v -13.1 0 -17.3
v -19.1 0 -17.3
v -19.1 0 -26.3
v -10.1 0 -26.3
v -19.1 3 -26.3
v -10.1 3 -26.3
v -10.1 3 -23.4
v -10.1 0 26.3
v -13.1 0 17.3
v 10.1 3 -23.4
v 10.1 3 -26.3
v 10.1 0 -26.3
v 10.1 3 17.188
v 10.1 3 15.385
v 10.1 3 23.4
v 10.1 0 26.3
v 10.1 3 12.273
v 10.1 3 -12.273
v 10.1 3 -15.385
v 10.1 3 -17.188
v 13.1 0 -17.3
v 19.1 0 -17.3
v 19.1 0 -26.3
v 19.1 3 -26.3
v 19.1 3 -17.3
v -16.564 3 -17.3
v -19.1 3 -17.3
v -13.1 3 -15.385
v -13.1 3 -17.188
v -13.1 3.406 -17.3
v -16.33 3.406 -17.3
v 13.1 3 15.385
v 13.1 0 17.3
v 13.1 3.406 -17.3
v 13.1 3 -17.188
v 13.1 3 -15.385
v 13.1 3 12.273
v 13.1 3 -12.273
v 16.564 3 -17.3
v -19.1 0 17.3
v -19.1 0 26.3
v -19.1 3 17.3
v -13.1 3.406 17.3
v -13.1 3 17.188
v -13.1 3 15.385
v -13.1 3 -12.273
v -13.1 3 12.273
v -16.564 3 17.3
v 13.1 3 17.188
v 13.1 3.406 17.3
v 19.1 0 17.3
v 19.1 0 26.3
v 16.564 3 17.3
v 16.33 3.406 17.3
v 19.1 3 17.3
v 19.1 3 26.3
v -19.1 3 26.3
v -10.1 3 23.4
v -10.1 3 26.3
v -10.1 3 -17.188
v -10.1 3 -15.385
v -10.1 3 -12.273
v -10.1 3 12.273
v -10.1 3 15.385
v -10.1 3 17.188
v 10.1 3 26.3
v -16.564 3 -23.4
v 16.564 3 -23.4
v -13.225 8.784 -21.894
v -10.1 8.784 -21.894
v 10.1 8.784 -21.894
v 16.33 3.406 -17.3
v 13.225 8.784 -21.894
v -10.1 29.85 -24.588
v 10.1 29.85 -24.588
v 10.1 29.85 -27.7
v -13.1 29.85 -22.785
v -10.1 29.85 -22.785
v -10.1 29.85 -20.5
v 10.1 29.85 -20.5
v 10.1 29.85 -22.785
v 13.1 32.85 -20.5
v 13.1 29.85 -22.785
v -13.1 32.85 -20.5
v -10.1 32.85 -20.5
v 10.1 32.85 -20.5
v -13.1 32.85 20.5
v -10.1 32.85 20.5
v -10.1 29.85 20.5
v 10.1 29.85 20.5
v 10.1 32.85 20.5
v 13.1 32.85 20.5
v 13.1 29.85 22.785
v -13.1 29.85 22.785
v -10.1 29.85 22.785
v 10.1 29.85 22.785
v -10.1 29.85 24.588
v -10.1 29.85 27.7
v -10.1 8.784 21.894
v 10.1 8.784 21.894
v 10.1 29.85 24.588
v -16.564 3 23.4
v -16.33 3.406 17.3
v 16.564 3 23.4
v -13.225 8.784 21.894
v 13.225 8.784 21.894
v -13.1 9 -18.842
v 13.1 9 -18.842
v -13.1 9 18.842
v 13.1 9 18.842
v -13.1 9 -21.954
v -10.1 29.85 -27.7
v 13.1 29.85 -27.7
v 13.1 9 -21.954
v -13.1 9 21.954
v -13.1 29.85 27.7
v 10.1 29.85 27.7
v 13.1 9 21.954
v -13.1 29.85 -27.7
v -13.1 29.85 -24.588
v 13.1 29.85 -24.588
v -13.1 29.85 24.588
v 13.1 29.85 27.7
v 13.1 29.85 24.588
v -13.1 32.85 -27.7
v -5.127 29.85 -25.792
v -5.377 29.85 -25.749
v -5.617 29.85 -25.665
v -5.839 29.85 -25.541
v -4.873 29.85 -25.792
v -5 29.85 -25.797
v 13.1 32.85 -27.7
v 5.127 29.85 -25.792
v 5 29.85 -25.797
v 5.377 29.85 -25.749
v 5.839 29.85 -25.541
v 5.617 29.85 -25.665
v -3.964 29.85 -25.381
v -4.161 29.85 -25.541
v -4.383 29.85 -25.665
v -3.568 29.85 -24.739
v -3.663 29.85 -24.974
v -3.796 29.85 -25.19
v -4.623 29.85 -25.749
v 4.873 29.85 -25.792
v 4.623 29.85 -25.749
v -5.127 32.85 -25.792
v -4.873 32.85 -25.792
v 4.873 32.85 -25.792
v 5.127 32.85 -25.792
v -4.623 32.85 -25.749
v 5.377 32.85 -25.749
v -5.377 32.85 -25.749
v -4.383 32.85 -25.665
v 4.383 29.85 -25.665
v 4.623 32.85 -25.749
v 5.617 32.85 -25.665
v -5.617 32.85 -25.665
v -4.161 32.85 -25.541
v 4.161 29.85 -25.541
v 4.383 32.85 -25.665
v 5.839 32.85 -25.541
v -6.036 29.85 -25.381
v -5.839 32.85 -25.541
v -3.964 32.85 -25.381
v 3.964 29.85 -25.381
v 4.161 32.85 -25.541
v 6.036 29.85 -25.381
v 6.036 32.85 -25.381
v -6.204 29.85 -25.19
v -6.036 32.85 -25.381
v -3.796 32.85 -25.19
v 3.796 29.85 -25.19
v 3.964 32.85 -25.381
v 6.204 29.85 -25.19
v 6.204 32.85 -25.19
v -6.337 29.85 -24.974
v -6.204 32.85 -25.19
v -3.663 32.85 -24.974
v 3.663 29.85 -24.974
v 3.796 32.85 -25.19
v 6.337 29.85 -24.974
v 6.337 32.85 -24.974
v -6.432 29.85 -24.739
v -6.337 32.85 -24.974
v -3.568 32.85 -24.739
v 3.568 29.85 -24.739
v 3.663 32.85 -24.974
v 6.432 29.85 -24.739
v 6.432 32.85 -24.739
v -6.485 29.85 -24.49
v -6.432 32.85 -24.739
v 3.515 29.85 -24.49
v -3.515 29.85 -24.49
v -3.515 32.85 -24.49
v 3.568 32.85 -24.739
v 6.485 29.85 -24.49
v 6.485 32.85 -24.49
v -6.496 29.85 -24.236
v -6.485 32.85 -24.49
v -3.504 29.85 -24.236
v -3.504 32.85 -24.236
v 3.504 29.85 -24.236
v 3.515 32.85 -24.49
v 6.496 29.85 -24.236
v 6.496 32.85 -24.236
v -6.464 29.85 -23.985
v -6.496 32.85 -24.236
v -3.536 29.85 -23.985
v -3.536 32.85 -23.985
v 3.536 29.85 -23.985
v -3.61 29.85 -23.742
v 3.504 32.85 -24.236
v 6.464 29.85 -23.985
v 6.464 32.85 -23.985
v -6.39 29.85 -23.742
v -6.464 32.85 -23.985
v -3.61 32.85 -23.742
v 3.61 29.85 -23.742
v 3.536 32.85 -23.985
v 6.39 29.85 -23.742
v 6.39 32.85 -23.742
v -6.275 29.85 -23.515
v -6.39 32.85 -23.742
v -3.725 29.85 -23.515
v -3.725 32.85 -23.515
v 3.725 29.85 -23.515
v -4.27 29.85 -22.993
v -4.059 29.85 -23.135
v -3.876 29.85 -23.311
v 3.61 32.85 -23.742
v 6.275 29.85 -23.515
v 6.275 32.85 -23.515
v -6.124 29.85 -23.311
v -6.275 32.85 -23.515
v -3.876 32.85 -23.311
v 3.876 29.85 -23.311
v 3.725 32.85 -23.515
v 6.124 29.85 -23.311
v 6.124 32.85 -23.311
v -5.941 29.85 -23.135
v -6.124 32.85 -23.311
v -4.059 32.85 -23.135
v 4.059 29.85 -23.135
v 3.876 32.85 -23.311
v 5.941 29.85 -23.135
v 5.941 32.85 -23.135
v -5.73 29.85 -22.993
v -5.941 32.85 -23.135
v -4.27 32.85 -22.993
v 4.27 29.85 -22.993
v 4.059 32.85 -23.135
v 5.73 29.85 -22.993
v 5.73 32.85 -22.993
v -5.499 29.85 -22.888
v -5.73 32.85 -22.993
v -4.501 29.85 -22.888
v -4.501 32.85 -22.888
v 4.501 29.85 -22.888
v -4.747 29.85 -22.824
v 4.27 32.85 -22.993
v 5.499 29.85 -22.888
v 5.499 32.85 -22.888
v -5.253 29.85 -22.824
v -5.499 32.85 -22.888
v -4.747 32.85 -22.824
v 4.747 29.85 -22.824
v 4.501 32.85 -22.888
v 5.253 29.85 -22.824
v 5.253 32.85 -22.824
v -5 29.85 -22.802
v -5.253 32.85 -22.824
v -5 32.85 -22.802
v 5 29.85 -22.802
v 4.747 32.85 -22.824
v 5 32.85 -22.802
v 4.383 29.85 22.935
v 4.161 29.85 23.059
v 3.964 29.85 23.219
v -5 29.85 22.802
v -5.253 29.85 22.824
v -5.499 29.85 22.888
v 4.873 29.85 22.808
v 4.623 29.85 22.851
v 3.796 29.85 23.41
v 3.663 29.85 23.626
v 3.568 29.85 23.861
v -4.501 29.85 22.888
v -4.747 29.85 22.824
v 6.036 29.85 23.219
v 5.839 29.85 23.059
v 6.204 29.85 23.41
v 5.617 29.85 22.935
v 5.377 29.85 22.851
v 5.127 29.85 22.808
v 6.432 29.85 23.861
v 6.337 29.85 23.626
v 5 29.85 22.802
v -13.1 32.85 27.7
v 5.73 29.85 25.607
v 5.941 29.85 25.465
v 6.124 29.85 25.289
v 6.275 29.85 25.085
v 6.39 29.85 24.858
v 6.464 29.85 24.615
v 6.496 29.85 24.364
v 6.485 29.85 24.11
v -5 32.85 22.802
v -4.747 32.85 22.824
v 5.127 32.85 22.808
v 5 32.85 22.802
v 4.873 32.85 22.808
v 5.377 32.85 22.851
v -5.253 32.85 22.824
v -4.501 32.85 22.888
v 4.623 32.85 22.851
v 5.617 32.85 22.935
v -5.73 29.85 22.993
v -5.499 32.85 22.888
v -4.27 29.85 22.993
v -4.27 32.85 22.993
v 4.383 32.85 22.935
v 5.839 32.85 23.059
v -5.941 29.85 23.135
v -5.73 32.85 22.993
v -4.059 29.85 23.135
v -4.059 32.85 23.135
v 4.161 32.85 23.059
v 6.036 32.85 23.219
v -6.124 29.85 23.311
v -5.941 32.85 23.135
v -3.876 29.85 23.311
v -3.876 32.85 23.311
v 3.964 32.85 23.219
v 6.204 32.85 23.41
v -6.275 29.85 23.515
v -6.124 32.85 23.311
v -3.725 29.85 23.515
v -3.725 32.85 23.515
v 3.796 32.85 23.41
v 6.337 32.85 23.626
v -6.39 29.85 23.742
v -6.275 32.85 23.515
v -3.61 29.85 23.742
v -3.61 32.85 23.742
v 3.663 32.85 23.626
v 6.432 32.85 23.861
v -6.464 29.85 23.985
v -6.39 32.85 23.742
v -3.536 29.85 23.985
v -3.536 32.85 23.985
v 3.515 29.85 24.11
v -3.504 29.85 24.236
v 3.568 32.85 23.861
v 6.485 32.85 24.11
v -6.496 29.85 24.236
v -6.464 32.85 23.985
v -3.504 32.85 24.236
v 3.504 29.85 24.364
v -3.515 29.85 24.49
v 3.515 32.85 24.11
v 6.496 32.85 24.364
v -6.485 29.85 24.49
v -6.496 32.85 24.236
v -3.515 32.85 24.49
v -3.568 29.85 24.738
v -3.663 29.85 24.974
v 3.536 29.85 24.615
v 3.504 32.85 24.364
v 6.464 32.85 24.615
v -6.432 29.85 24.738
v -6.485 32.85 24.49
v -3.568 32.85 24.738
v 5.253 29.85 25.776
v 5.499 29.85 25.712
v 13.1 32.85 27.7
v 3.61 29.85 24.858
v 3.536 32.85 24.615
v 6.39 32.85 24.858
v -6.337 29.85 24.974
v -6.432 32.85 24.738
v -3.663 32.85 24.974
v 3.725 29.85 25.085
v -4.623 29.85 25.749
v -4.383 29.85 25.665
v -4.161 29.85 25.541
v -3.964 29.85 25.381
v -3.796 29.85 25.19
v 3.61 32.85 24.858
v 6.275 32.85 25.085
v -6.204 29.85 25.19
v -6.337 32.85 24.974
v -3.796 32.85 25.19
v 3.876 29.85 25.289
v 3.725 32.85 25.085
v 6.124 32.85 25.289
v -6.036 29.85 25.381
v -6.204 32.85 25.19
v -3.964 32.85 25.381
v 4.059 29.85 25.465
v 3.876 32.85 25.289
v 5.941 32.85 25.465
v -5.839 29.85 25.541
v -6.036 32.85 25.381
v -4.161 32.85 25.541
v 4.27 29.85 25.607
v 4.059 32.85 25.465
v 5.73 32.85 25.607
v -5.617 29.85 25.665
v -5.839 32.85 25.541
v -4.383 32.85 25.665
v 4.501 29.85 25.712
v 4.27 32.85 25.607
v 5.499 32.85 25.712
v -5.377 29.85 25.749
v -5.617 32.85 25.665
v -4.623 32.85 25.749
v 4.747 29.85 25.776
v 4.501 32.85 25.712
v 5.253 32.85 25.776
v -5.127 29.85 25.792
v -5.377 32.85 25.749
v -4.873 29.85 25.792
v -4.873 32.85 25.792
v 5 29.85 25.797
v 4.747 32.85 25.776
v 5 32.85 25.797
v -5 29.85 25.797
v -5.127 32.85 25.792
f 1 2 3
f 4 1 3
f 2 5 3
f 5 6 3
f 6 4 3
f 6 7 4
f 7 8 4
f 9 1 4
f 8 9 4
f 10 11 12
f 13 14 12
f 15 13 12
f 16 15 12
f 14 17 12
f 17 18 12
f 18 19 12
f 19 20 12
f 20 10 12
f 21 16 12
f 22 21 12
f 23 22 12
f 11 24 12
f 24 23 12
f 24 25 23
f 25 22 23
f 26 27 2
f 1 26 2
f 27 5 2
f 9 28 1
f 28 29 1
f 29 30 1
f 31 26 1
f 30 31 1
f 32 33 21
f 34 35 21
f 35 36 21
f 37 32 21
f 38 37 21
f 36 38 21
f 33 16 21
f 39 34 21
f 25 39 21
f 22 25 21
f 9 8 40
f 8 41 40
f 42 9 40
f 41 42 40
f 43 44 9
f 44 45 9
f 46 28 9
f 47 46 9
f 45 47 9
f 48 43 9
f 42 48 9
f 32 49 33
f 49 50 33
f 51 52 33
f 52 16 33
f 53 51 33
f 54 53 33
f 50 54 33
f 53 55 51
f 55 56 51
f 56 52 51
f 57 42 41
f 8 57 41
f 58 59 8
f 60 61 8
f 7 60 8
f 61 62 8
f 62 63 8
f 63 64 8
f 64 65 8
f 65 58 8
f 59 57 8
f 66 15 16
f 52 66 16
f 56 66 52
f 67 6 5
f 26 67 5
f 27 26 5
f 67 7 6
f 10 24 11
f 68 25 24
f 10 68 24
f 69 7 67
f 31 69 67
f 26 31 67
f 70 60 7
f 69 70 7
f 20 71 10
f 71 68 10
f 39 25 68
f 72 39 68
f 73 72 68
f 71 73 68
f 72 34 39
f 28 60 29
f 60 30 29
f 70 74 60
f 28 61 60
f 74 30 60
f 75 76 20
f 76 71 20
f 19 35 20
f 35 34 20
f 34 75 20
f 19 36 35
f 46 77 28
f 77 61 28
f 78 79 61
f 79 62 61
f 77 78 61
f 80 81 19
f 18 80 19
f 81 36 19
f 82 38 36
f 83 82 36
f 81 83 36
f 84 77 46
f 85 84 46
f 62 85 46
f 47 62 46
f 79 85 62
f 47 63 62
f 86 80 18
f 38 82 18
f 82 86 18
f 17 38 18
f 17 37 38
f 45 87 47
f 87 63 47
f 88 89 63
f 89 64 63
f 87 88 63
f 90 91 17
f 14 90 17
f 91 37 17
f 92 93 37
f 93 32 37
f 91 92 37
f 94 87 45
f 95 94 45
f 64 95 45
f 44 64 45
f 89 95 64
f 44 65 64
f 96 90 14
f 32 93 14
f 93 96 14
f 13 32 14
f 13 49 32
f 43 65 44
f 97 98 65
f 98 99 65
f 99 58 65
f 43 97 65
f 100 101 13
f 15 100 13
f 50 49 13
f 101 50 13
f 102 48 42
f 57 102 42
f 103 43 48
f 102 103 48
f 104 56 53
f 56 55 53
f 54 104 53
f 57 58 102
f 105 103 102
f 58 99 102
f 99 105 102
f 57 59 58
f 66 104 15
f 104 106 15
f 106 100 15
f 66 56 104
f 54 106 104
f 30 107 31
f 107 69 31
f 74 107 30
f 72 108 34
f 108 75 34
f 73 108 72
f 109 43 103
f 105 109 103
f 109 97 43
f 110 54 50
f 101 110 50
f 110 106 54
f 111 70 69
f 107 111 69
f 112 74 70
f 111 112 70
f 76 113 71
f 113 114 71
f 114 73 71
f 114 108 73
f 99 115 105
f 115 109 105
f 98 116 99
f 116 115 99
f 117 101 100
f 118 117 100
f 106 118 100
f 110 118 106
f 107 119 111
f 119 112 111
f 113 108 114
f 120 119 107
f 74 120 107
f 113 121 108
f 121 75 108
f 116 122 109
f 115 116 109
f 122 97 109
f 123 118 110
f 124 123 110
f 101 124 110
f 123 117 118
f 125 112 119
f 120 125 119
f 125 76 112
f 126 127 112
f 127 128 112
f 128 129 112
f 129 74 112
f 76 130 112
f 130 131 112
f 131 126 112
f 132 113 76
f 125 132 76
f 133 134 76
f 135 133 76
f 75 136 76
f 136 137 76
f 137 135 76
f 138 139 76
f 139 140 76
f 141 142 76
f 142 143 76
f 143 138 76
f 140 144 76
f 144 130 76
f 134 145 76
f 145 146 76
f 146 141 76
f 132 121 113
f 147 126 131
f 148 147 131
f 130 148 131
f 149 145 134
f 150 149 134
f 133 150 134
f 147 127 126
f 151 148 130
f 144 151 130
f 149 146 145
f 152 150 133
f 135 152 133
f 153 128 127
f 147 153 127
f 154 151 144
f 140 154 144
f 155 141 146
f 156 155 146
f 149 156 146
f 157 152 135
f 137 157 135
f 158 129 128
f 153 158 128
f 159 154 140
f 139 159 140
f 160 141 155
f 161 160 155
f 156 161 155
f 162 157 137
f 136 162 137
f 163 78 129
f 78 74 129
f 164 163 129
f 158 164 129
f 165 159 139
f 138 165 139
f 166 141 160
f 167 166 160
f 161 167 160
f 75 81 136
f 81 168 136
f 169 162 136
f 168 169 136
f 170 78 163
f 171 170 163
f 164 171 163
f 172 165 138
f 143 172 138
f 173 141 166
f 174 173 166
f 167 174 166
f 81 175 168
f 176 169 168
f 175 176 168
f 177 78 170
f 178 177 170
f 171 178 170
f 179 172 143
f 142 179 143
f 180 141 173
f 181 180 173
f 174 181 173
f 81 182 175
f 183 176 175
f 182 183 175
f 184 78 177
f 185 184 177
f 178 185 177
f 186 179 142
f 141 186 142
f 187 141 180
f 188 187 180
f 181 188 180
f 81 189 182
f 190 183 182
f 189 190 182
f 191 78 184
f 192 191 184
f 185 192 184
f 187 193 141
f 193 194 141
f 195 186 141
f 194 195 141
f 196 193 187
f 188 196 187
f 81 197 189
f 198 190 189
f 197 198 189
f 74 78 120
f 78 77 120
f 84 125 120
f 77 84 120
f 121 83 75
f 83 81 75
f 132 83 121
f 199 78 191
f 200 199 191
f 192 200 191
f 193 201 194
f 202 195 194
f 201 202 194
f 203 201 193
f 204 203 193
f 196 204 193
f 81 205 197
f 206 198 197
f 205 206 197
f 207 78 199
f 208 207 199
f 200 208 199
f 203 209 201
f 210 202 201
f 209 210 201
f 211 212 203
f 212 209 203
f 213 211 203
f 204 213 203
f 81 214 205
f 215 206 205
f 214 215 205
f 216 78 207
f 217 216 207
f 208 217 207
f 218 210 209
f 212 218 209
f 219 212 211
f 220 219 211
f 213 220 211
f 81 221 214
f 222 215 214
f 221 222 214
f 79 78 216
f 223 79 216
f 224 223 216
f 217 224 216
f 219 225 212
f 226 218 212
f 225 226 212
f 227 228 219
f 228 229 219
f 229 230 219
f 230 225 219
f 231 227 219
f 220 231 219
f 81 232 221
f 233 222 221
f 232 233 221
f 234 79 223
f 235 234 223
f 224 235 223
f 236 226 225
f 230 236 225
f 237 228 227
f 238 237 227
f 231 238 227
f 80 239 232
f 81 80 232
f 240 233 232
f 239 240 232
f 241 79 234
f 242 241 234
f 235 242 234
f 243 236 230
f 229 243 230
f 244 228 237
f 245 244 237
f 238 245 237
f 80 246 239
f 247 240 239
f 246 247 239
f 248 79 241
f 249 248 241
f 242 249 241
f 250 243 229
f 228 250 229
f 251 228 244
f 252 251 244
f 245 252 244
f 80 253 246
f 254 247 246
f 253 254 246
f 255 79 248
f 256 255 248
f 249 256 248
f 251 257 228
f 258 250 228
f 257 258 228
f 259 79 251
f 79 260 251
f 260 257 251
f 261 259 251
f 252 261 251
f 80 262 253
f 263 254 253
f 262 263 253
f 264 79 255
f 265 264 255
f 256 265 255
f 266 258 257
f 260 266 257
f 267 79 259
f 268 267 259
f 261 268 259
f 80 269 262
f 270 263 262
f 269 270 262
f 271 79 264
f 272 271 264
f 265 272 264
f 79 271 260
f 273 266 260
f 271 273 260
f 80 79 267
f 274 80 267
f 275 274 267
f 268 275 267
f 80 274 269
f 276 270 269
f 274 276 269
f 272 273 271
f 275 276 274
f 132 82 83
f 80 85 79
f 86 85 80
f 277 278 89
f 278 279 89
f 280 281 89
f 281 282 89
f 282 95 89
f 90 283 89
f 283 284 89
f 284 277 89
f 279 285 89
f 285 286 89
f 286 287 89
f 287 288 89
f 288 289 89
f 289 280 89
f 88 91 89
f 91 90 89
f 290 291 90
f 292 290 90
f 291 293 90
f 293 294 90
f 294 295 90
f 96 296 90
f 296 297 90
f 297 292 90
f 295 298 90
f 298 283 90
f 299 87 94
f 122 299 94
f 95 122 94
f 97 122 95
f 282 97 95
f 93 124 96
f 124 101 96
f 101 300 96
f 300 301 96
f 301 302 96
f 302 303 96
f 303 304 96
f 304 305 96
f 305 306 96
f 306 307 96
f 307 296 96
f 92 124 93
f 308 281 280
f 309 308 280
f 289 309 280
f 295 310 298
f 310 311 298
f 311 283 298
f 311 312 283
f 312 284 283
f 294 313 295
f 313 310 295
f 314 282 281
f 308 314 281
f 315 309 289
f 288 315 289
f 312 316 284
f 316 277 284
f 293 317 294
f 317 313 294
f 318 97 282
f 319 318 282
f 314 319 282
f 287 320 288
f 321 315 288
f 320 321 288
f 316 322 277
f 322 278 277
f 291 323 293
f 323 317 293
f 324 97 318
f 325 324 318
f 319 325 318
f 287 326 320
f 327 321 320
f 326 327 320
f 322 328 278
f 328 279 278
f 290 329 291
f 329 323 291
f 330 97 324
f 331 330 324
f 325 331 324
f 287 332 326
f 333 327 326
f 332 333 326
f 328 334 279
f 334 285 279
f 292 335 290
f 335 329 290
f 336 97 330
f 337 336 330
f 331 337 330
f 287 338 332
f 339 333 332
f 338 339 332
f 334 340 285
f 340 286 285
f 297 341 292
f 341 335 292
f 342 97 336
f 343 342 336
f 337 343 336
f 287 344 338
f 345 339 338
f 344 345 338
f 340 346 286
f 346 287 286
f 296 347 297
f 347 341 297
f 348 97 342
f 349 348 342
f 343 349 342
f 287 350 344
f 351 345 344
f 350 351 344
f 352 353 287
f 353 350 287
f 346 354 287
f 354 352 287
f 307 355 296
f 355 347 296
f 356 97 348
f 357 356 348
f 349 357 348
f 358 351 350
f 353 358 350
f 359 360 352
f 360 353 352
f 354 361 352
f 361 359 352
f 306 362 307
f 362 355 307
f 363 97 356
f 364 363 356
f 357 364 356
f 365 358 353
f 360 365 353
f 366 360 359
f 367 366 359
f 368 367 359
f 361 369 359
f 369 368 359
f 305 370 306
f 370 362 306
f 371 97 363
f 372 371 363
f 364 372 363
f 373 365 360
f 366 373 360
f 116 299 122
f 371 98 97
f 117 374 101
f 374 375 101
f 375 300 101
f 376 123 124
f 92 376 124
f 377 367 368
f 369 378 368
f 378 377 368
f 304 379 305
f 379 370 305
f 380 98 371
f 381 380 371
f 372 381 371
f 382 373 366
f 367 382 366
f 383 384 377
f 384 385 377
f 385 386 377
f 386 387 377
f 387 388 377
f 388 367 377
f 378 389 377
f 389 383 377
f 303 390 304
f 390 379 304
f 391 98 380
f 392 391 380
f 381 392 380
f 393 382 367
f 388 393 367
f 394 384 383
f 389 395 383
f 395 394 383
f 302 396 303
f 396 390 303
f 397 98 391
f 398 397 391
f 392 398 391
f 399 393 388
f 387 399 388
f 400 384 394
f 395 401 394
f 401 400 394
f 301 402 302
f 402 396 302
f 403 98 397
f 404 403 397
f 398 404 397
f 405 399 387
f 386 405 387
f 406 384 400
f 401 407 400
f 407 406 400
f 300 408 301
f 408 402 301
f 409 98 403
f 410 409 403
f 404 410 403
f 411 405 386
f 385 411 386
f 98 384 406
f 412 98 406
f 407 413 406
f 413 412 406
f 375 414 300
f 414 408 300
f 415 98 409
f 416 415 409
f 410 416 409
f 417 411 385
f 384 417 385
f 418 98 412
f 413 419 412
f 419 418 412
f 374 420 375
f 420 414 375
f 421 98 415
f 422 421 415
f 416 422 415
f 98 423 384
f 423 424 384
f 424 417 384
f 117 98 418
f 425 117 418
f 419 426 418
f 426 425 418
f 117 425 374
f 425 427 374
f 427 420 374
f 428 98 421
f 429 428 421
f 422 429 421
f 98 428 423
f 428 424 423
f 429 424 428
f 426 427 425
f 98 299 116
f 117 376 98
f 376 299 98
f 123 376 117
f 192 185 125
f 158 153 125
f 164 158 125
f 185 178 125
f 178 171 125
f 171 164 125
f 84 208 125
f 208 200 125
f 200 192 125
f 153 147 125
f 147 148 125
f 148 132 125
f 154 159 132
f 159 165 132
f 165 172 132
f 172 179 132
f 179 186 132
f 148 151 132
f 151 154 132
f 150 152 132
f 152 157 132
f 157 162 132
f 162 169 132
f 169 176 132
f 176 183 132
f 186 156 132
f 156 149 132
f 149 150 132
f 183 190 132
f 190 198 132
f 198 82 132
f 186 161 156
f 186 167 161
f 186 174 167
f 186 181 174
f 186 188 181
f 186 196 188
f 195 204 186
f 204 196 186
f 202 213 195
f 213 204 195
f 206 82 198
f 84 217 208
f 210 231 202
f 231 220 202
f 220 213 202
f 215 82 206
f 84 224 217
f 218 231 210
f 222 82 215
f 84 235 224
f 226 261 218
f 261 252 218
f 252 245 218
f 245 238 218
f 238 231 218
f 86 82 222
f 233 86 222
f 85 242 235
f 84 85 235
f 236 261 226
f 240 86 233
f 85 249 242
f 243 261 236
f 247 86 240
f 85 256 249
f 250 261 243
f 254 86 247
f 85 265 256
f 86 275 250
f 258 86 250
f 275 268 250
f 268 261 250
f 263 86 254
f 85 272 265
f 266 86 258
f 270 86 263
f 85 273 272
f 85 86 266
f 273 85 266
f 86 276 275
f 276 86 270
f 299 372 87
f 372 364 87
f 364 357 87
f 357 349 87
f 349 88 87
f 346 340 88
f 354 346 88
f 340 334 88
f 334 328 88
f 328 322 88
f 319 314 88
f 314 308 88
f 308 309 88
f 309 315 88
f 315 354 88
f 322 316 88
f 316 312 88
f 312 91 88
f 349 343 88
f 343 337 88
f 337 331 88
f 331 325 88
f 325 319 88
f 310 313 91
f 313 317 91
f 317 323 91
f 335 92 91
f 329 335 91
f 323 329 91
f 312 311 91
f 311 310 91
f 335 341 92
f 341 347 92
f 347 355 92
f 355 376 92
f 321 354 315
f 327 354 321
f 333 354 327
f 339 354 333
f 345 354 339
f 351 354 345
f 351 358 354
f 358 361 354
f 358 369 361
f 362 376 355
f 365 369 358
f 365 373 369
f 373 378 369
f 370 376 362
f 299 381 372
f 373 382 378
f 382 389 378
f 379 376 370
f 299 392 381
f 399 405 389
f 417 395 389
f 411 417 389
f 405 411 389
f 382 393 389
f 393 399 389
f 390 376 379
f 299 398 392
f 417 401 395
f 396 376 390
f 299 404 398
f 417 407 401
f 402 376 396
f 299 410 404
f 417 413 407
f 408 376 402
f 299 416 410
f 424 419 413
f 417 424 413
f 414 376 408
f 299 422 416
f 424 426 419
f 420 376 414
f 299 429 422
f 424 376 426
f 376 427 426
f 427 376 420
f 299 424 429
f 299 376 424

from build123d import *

# Parameters (mm, degrees)
BOSS_EXTRUDE2_DEPTH = 3
SKETCH6_W           = 7.2
SKETCH6_H           = 3
BOSS_EXTRUDE3_DEPTH = 10.1
SKETCH8_R           = 1.4975
CUT_EXTRUDE3_DEPTH  = 45.922405323
SKETCH9_W           = 9
SKETCH9_H           = 9
BOSS_EXTRUDE4_DEPTH = 3
CHAMFER2_SIZE       = 3.464101615
CHAMFER2_SIZE_2     = 6
CHAMFER2_SIZE_3     = 3.099985421


# Read off the part's stored shape, not the designer's step: Mirror10
with BuildPart() as part:
    # Sketch4 → Boss-Extrude2 (new body)
    with BuildSketch(Plane(origin=(10.1, 0, 0), x_dir=(0, 0, -1), z_dir=(1, 0, 0))):
        Polygon((0, 0), (20.3, 0), (20.3, 3), (27.7, 29.85), (27.7, 32.85), (20.5, 32.85), (12.273184358, 3), (0, 3), align=None)
        Polygon((22.785036556, 29.85), (15.385036556, 3), (17.188147801, 3), (24.588147801, 29.85), align=None, mode=Mode.SUBTRACT)
    boss_extrude2 = extrude(amount=BOSS_EXTRUDE2_DEPTH)

    # Sketch6 → Boss-Extrude3 (add)
    with BuildSketch(Plane.ZY.offset(-10.1)):
        with Locations((-24.1, 31.35)):
            Rectangle(SKETCH6_W, SKETCH6_H)
    boss_extrude3 = extrude(amount=BOSS_EXTRUDE3_DEPTH)

    # Sketch8 → Cut-Extrude3 (cut, through all)
    with BuildSketch(Plane(origin=(0, 32.85, 0), x_dir=(1, 0, 0), z_dir=(0, 1, 0))):
        with Locations(Location((5, 24.3, 0), (0, 0, 270))):
            Circle(SKETCH8_R)
    cut_extrude3 = extrude(amount=-CUT_EXTRUDE3_DEPTH, mode=Mode.SUBTRACT)

    # Sketch9 → Boss-Extrude4 (add)
    with BuildSketch(Plane.XZ):
        with Locations((14.6, -21.8)):
            Rectangle(SKETCH9_W, SKETCH9_H)
    boss_extrude4 = extrude(amount=-BOSS_EXTRUDE4_DEPTH)

    # Mirror9: Boss-Extrude2, Boss-Extrude3, Cut-Extrude3, Boss-Extrude4 across plane
    add(boss_extrude2.mirror(Plane(origin=(0, 0, 0), x_dir=(0, 0, 1), z_dir=(1, 0, 0))))
    add(boss_extrude3.mirror(Plane(origin=(0, 0, 0), x_dir=(0, 0, 1), z_dir=(1, 0, 0))))
    add(cut_extrude3.mirror(Plane(origin=(0, 0, 0), x_dir=(0, 0, 1), z_dir=(1, 0, 0))), mode=Mode.SUBTRACT)
    add(boss_extrude4.mirror(Plane(origin=(0, 0, 0), x_dir=(0, 0, 1), z_dir=(1, 0, 0))))

    # Mirror10: part across plane


with BuildPart() as part_1:
    add(part.part)
    add(part.part.mirror(Plane.XY))

    # Chamfer2
    # the kernel refuses this chamfer: 6, 3.464101615, 3.099985421 mm, written as the material it adds along each edge
    with BuildSketch(Plane(origin=(-13.1, 3, 17.3), x_dir=(-0.9983227437537925, -0.05789386240267071, 0), z_dir=(0, 0, 1))) as chamfer2_piece_1_section:
        Polygon((CHAMFER2_SIZE * 0.998322743793, -CHAMFER2_SIZE * 0.057893862405), (-CHAMFER2_SIZE_2 * 0.0578938624027, -CHAMFER2_SIZE_2 * 0.998322743754), (0, 0), align=None)
    chamfer2_piece_1 = extrude(amount=18.522514528, mode=Mode.PRIVATE)
    chamfer2_piece_1 = split(chamfer2_piece_1, bisect_by=Plane(origin=(-14.207429755, 4.623813367, 20.747531431), z_dir=(0, 0.2656988795293601, -0.9640560696436917)), keep=Keep.TOP, mode=Mode.PRIVATE)
    chamfer2_piece_1 = split(chamfer2_piece_1, bisect_by=Plane(origin=(-14.207429755, 5.420910005, 17.855363222), z_dir=(0, -0.26569887952935983, 0.9640560696436918)), keep=Keep.TOP, mode=Mode.PRIVATE)
    add(chamfer2_piece_1)
    with BuildSketch(Plane(origin=(-13.1, 3, -17.3), x_dir=(-0.9983227437537925, -0.05789386240267071, 0), z_dir=(0, 0, -1))) as chamfer2_piece_2_section:
        Polygon((CHAMFER2_SIZE * 0.998322743793, CHAMFER2_SIZE * 0.057893862405), (-CHAMFER2_SIZE_2 * 0.0578938624027, CHAMFER2_SIZE_2 * 0.998322743754), (0, 0), align=None)
    chamfer2_piece_2 = extrude(amount=18.522514528, mode=Mode.PRIVATE)
    chamfer2_piece_2 = split(chamfer2_piece_2, bisect_by=Plane(origin=(-14.207429755, 5.420910005, -17.855363222), z_dir=(0, -0.26569887952935983, -0.9640560696436918)), keep=Keep.TOP, mode=Mode.PRIVATE)
    chamfer2_piece_2 = split(chamfer2_piece_2, bisect_by=Plane(origin=(-14.207429755, 4.623813367, -20.747531431), z_dir=(0, 0.2656988795293601, 0.9640560696436917)), keep=Keep.TOP, mode=Mode.PRIVATE)
    add(chamfer2_piece_2)
    with BuildSketch(Plane(origin=(-10.1, 3, 20.3), x_dir=(0, -0.07329167604498149, 0.997310548536672), z_dir=(-1, 0, 0)), Plane(origin=(10.1, 3, -20.3), x_dir=(0, -0.07329167604498149, -0.997310548536672), z_dir=(1, 0, 0))) as chamfer2_piece_3:
        Polygon((CHAMFER2_SIZE_3 * 0.997310548488, CHAMFER2_SIZE_3 * 0.0732916760414), (CHAMFER2_SIZE_2 * 0.194327010143, CHAMFER2_SIZE_2 * 0.98093680384), (0, 0), align=None)
    extrude(amount=3)
    with BuildSketch(Plane(origin=(13.1, 3, 35.822514528), x_dir=(0.9983227437537925, -0.05789386240267071, 0), z_dir=(0, 0, -1))) as chamfer2_piece_4_section:
        Polygon((CHAMFER2_SIZE * 0.998322743793, -CHAMFER2_SIZE * 0.057893862405), (-CHAMFER2_SIZE_2 * 0.0578938624027, -CHAMFER2_SIZE_2 * 0.998322743754), (0, 0), align=None)
    chamfer2_piece_4 = extrude(amount=18.522514528, mode=Mode.PRIVATE)
    chamfer2_piece_4 = split(chamfer2_piece_4, bisect_by=Plane(origin=(14.207429755, 4.623813367, 20.747531431), z_dir=(0, 0.2656988795293601, -0.9640560696436917)), keep=Keep.TOP, mode=Mode.PRIVATE)
    chamfer2_piece_4 = split(chamfer2_piece_4, bisect_by=Plane(origin=(14.207429755, 5.420910005, 17.855363222), z_dir=(0, -0.26569887952935983, 0.9640560696436918)), keep=Keep.TOP, mode=Mode.PRIVATE)
    add(chamfer2_piece_4)
    with BuildSketch(Plane(origin=(13.1, 3, -35.822514528), x_dir=(0.9983227437537925, -0.05789386240267071, 0), z_dir=(0, 0, 1))) as chamfer2_piece_5_section:
        Polygon((CHAMFER2_SIZE * 0.998322743793, CHAMFER2_SIZE * 0.057893862405), (-CHAMFER2_SIZE_2 * 0.0578938624027, CHAMFER2_SIZE_2 * 0.998322743754), (0, 0), align=None)
    chamfer2_piece_5 = extrude(amount=18.522514528, mode=Mode.PRIVATE)
    chamfer2_piece_5 = split(chamfer2_piece_5, bisect_by=Plane(origin=(14.207429755, 4.623813367, -20.747531431), z_dir=(0, 0.2656988795293601, 0.9640560696436917)), keep=Keep.TOP, mode=Mode.PRIVATE)
    chamfer2_piece_5 = split(chamfer2_piece_5, bisect_by=Plane(origin=(14.207429755, 5.420910005, -17.855363222), z_dir=(0, -0.26569887952935983, -0.9640560696436918)), keep=Keep.TOP, mode=Mode.PRIVATE)
    add(chamfer2_piece_5)
    with BuildSketch(Plane(origin=(10.1, 3, 20.3), x_dir=(0, 0.9690111038190681, 0.24701716676245647), z_dir=(1, 0, 0))) as chamfer2_piece_6:
        Polygon((CHAMFER2_SIZE_2 * 0.999813220622, CHAMFER2_SIZE_2 * 0.0193267656127), (CHAMFER2_SIZE_3 * 0.247017166751, CHAMFER2_SIZE_3 * 0.969011103772), (0, 0), align=None)
    extrude(amount=3)
    with BuildSketch(Plane(origin=(-10.1, 3, -20.3), x_dir=(0, -0.07329167604498149, -0.997310548536672), z_dir=(-1, 0, 0))) as chamfer2_piece_7:
        Polygon((CHAMFER2_SIZE_3 * 0.997310548488, -CHAMFER2_SIZE_3 * 0.0732916760414), (CHAMFER2_SIZE_2 * 0.194327010143, -CHAMFER2_SIZE_2 * 0.98093680384), (0, 0), align=None)
    extrude(amount=3)
    with BuildSketch(Plane(origin=(-13.1, 3, 17.3), x_dir=(-0.9983227437537925, -0.05789386240267071, 0), z_dir=(0, 0, 1))) as chamfer2_piece_8a_section:
        Polygon((CHAMFER2_SIZE * 0.998322743793, -CHAMFER2_SIZE * 0.057893862405), (-CHAMFER2_SIZE_2 * 0.0578938624027, -CHAMFER2_SIZE_2 * 0.998322743754), (0, 0), align=None)
    chamfer2_piece_8a = extrude(amount=18.522514528, mode=Mode.PRIVATE)
    chamfer2_piece_8a = split(chamfer2_piece_8a, bisect_by=Plane(origin=(-14.24841762, 4.892203589, 26.3), z_dir=(0, 0, -1)), keep=Keep.TOP, mode=Mode.PRIVATE)
    chamfer2_piece_8a = split(chamfer2_piece_8a, bisect_by=Plane(origin=(-14.24841762, 5.593858539, 21.014880938), z_dir=(0, -0.2656988795293601, 0.9640560696436917)), keep=Keep.TOP, mode=Mode.PRIVATE)
    with BuildSketch(Plane(origin=(-10.1, 3, 20.3), x_dir=(0, -0.07329167604498149, 0.997310548536672), z_dir=(-1, 0, 0))) as chamfer2_piece_8b_section:
        Polygon((CHAMFER2_SIZE_3 * 0.997310548488, CHAMFER2_SIZE_3 * 0.0732916760414), (CHAMFER2_SIZE_2 * 0.194327010143, CHAMFER2_SIZE_2 * 0.98093680384), (0, 0), align=None)
    chamfer2_piece_8b = extrude(amount=18.522514528, mode=Mode.PRIVATE)
    chamfer2_piece_8b = split(chamfer2_piece_8b, bisect_by=Plane(origin=(-19.1, 4.952235463, 21.823438055), z_dir=(1, 0, 0)), keep=Keep.TOP, mode=Mode.PRIVATE)
    chamfer2_piece_8b = split(chamfer2_piece_8b, bisect_by=Plane(origin=(-13.1, 4.952235463, 21.823438055), z_dir=(-1, 0, 0)), keep=Keep.TOP, mode=Mode.PRIVATE)
    chamfer2_piece_8 = chamfer2_piece_8a & chamfer2_piece_8b
    add(chamfer2_piece_8)
    with BuildSketch(Plane(origin=(-13.1, 3, -17.3), x_dir=(-0.9983227437537925, -0.05789386240267071, 0), z_dir=(0, 0, -1))) as chamfer2_piece_9a_section:
        Polygon((CHAMFER2_SIZE * 0.998322743793, CHAMFER2_SIZE * 0.057893862405), (-CHAMFER2_SIZE_2 * 0.0578938624027, CHAMFER2_SIZE_2 * 0.998322743754), (0, 0), align=None)
    chamfer2_piece_9a = extrude(amount=18.522514528, mode=Mode.PRIVATE)
    chamfer2_piece_9a = split(chamfer2_piece_9a, bisect_by=Plane(origin=(-14.24841762, 4.892203589, -26.3), z_dir=(0, 0, 1)), keep=Keep.TOP, mode=Mode.PRIVATE)
    chamfer2_piece_9a = split(chamfer2_piece_9a, bisect_by=Plane(origin=(-14.24841762, 5.593858539, -21.014880938), z_dir=(0, -0.2656988795293601, -0.9640560696436917)), keep=Keep.TOP, mode=Mode.PRIVATE)
    with BuildSketch(Plane(origin=(-10.1, 3, -20.3), x_dir=(0, -0.07329167604498149, -0.997310548536672), z_dir=(-1, 0, 0))) as chamfer2_piece_9b_section:
        Polygon((CHAMFER2_SIZE_3 * 0.997310548488, -CHAMFER2_SIZE_3 * 0.0732916760414), (CHAMFER2_SIZE_2 * 0.194327010143, -CHAMFER2_SIZE_2 * 0.98093680384), (0, 0), align=None)
    chamfer2_piece_9b = extrude(amount=18.522514528, mode=Mode.PRIVATE)
    chamfer2_piece_9b = split(chamfer2_piece_9b, bisect_by=Plane(origin=(-19.1, 4.952235463, -21.823438055), z_dir=(1, 0, 0)), keep=Keep.TOP, mode=Mode.PRIVATE)
    chamfer2_piece_9b = split(chamfer2_piece_9b, bisect_by=Plane(origin=(-13.1, 4.952235463, -21.823438055), z_dir=(-1, 0, 0)), keep=Keep.TOP, mode=Mode.PRIVATE)
    chamfer2_piece_9 = chamfer2_piece_9a & chamfer2_piece_9b
    add(chamfer2_piece_9)
    with BuildSketch(Plane(origin=(10.1, 3, 20.3), x_dir=(0, 0.9690111038190681, 0.24701716676245647), z_dir=(1, 0, 0))) as chamfer2_piece_10a_section:
        Polygon((CHAMFER2_SIZE_2 * 0.999813220622, CHAMFER2_SIZE_2 * 0.0193267656127), (CHAMFER2_SIZE_3 * 0.247017166751, CHAMFER2_SIZE_3 * 0.969011103772), (0, 0), align=None)
    chamfer2_piece_10a = extrude(amount=18.522514528, mode=Mode.PRIVATE)
    chamfer2_piece_10a = split(chamfer2_piece_10a, bisect_by=Plane(origin=(13.1, 4.952235463, 21.823438055), z_dir=(1, 0, 0)), keep=Keep.TOP, mode=Mode.PRIVATE)
    chamfer2_piece_10a = split(chamfer2_piece_10a, bisect_by=Plane(origin=(19.1, 4.952235463, 21.823438055), z_dir=(-1, 0, 0)), keep=Keep.TOP, mode=Mode.PRIVATE)
    with BuildSketch(Plane(origin=(13.1, 3, 35.822514528), x_dir=(0.9983227437537925, -0.05789386240267071, 0), z_dir=(0, 0, -1))) as chamfer2_piece_10b_section:
        Polygon((CHAMFER2_SIZE * 0.998322743793, -CHAMFER2_SIZE * 0.057893862405), (-CHAMFER2_SIZE_2 * 0.0578938624027, -CHAMFER2_SIZE_2 * 0.998322743754), (0, 0), align=None)
    chamfer2_piece_10b = extrude(amount=18.522514528, mode=Mode.PRIVATE)
    chamfer2_piece_10b = split(chamfer2_piece_10b, bisect_by=Plane(origin=(14.24841762, 5.593858539, 21.014880938), z_dir=(0, -0.2656988795293601, 0.9640560696436917)), keep=Keep.TOP, mode=Mode.PRIVATE)
    chamfer2_piece_10b = split(chamfer2_piece_10b, bisect_by=Plane(origin=(14.24841762, 4.892203589, 26.3), z_dir=(0, 0, -1)), keep=Keep.TOP, mode=Mode.PRIVATE)
    chamfer2_piece_10 = chamfer2_piece_10a & chamfer2_piece_10b
    add(chamfer2_piece_10)
    with BuildSketch(Plane(origin=(13.1, 3, -35.822514528), x_dir=(0.9983227437537925, -0.05789386240267071, 0), z_dir=(0, 0, 1))) as chamfer2_piece_11a_section:
        Polygon((CHAMFER2_SIZE * 0.998322743793, CHAMFER2_SIZE * 0.057893862405), (-CHAMFER2_SIZE_2 * 0.0578938624027, CHAMFER2_SIZE_2 * 0.998322743754), (0, 0), align=None)
    chamfer2_piece_11a = extrude(amount=18.522514528, mode=Mode.PRIVATE)
    chamfer2_piece_11a = split(chamfer2_piece_11a, bisect_by=Plane(origin=(14.24841762, 4.892203589, -26.3), z_dir=(0, 0, 1)), keep=Keep.TOP, mode=Mode.PRIVATE)
    chamfer2_piece_11a = split(chamfer2_piece_11a, bisect_by=Plane(origin=(14.24841762, 5.593858539, -21.014880938), z_dir=(0, -0.2656988795293601, -0.9640560696436917)), keep=Keep.TOP, mode=Mode.PRIVATE)
    with BuildSketch(Plane(origin=(10.1, 3, -20.3), x_dir=(0, -0.07329167604498149, -0.997310548536672), z_dir=(1, 0, 0))) as chamfer2_piece_11b_section:
        Polygon((CHAMFER2_SIZE_3 * 0.997310548488, CHAMFER2_SIZE_3 * 0.0732916760414), (CHAMFER2_SIZE_2 * 0.194327010143, CHAMFER2_SIZE_2 * 0.98093680384), (0, 0), align=None)
    chamfer2_piece_11b = extrude(amount=18.522514528, mode=Mode.PRIVATE)
    chamfer2_piece_11b = split(chamfer2_piece_11b, bisect_by=Plane(origin=(19.1, 4.952235463, -21.823438055), z_dir=(-1, 0, 0)), keep=Keep.TOP, mode=Mode.PRIVATE)
    chamfer2_piece_11b = split(chamfer2_piece_11b, bisect_by=Plane(origin=(13.1, 4.952235463, -21.823438055), z_dir=(1, 0, 0)), keep=Keep.TOP, mode=Mode.PRIVATE)
    chamfer2_piece_11 = chamfer2_piece_11a & chamfer2_piece_11b
    add(chamfer2_piece_11)


solid = part_1.part
